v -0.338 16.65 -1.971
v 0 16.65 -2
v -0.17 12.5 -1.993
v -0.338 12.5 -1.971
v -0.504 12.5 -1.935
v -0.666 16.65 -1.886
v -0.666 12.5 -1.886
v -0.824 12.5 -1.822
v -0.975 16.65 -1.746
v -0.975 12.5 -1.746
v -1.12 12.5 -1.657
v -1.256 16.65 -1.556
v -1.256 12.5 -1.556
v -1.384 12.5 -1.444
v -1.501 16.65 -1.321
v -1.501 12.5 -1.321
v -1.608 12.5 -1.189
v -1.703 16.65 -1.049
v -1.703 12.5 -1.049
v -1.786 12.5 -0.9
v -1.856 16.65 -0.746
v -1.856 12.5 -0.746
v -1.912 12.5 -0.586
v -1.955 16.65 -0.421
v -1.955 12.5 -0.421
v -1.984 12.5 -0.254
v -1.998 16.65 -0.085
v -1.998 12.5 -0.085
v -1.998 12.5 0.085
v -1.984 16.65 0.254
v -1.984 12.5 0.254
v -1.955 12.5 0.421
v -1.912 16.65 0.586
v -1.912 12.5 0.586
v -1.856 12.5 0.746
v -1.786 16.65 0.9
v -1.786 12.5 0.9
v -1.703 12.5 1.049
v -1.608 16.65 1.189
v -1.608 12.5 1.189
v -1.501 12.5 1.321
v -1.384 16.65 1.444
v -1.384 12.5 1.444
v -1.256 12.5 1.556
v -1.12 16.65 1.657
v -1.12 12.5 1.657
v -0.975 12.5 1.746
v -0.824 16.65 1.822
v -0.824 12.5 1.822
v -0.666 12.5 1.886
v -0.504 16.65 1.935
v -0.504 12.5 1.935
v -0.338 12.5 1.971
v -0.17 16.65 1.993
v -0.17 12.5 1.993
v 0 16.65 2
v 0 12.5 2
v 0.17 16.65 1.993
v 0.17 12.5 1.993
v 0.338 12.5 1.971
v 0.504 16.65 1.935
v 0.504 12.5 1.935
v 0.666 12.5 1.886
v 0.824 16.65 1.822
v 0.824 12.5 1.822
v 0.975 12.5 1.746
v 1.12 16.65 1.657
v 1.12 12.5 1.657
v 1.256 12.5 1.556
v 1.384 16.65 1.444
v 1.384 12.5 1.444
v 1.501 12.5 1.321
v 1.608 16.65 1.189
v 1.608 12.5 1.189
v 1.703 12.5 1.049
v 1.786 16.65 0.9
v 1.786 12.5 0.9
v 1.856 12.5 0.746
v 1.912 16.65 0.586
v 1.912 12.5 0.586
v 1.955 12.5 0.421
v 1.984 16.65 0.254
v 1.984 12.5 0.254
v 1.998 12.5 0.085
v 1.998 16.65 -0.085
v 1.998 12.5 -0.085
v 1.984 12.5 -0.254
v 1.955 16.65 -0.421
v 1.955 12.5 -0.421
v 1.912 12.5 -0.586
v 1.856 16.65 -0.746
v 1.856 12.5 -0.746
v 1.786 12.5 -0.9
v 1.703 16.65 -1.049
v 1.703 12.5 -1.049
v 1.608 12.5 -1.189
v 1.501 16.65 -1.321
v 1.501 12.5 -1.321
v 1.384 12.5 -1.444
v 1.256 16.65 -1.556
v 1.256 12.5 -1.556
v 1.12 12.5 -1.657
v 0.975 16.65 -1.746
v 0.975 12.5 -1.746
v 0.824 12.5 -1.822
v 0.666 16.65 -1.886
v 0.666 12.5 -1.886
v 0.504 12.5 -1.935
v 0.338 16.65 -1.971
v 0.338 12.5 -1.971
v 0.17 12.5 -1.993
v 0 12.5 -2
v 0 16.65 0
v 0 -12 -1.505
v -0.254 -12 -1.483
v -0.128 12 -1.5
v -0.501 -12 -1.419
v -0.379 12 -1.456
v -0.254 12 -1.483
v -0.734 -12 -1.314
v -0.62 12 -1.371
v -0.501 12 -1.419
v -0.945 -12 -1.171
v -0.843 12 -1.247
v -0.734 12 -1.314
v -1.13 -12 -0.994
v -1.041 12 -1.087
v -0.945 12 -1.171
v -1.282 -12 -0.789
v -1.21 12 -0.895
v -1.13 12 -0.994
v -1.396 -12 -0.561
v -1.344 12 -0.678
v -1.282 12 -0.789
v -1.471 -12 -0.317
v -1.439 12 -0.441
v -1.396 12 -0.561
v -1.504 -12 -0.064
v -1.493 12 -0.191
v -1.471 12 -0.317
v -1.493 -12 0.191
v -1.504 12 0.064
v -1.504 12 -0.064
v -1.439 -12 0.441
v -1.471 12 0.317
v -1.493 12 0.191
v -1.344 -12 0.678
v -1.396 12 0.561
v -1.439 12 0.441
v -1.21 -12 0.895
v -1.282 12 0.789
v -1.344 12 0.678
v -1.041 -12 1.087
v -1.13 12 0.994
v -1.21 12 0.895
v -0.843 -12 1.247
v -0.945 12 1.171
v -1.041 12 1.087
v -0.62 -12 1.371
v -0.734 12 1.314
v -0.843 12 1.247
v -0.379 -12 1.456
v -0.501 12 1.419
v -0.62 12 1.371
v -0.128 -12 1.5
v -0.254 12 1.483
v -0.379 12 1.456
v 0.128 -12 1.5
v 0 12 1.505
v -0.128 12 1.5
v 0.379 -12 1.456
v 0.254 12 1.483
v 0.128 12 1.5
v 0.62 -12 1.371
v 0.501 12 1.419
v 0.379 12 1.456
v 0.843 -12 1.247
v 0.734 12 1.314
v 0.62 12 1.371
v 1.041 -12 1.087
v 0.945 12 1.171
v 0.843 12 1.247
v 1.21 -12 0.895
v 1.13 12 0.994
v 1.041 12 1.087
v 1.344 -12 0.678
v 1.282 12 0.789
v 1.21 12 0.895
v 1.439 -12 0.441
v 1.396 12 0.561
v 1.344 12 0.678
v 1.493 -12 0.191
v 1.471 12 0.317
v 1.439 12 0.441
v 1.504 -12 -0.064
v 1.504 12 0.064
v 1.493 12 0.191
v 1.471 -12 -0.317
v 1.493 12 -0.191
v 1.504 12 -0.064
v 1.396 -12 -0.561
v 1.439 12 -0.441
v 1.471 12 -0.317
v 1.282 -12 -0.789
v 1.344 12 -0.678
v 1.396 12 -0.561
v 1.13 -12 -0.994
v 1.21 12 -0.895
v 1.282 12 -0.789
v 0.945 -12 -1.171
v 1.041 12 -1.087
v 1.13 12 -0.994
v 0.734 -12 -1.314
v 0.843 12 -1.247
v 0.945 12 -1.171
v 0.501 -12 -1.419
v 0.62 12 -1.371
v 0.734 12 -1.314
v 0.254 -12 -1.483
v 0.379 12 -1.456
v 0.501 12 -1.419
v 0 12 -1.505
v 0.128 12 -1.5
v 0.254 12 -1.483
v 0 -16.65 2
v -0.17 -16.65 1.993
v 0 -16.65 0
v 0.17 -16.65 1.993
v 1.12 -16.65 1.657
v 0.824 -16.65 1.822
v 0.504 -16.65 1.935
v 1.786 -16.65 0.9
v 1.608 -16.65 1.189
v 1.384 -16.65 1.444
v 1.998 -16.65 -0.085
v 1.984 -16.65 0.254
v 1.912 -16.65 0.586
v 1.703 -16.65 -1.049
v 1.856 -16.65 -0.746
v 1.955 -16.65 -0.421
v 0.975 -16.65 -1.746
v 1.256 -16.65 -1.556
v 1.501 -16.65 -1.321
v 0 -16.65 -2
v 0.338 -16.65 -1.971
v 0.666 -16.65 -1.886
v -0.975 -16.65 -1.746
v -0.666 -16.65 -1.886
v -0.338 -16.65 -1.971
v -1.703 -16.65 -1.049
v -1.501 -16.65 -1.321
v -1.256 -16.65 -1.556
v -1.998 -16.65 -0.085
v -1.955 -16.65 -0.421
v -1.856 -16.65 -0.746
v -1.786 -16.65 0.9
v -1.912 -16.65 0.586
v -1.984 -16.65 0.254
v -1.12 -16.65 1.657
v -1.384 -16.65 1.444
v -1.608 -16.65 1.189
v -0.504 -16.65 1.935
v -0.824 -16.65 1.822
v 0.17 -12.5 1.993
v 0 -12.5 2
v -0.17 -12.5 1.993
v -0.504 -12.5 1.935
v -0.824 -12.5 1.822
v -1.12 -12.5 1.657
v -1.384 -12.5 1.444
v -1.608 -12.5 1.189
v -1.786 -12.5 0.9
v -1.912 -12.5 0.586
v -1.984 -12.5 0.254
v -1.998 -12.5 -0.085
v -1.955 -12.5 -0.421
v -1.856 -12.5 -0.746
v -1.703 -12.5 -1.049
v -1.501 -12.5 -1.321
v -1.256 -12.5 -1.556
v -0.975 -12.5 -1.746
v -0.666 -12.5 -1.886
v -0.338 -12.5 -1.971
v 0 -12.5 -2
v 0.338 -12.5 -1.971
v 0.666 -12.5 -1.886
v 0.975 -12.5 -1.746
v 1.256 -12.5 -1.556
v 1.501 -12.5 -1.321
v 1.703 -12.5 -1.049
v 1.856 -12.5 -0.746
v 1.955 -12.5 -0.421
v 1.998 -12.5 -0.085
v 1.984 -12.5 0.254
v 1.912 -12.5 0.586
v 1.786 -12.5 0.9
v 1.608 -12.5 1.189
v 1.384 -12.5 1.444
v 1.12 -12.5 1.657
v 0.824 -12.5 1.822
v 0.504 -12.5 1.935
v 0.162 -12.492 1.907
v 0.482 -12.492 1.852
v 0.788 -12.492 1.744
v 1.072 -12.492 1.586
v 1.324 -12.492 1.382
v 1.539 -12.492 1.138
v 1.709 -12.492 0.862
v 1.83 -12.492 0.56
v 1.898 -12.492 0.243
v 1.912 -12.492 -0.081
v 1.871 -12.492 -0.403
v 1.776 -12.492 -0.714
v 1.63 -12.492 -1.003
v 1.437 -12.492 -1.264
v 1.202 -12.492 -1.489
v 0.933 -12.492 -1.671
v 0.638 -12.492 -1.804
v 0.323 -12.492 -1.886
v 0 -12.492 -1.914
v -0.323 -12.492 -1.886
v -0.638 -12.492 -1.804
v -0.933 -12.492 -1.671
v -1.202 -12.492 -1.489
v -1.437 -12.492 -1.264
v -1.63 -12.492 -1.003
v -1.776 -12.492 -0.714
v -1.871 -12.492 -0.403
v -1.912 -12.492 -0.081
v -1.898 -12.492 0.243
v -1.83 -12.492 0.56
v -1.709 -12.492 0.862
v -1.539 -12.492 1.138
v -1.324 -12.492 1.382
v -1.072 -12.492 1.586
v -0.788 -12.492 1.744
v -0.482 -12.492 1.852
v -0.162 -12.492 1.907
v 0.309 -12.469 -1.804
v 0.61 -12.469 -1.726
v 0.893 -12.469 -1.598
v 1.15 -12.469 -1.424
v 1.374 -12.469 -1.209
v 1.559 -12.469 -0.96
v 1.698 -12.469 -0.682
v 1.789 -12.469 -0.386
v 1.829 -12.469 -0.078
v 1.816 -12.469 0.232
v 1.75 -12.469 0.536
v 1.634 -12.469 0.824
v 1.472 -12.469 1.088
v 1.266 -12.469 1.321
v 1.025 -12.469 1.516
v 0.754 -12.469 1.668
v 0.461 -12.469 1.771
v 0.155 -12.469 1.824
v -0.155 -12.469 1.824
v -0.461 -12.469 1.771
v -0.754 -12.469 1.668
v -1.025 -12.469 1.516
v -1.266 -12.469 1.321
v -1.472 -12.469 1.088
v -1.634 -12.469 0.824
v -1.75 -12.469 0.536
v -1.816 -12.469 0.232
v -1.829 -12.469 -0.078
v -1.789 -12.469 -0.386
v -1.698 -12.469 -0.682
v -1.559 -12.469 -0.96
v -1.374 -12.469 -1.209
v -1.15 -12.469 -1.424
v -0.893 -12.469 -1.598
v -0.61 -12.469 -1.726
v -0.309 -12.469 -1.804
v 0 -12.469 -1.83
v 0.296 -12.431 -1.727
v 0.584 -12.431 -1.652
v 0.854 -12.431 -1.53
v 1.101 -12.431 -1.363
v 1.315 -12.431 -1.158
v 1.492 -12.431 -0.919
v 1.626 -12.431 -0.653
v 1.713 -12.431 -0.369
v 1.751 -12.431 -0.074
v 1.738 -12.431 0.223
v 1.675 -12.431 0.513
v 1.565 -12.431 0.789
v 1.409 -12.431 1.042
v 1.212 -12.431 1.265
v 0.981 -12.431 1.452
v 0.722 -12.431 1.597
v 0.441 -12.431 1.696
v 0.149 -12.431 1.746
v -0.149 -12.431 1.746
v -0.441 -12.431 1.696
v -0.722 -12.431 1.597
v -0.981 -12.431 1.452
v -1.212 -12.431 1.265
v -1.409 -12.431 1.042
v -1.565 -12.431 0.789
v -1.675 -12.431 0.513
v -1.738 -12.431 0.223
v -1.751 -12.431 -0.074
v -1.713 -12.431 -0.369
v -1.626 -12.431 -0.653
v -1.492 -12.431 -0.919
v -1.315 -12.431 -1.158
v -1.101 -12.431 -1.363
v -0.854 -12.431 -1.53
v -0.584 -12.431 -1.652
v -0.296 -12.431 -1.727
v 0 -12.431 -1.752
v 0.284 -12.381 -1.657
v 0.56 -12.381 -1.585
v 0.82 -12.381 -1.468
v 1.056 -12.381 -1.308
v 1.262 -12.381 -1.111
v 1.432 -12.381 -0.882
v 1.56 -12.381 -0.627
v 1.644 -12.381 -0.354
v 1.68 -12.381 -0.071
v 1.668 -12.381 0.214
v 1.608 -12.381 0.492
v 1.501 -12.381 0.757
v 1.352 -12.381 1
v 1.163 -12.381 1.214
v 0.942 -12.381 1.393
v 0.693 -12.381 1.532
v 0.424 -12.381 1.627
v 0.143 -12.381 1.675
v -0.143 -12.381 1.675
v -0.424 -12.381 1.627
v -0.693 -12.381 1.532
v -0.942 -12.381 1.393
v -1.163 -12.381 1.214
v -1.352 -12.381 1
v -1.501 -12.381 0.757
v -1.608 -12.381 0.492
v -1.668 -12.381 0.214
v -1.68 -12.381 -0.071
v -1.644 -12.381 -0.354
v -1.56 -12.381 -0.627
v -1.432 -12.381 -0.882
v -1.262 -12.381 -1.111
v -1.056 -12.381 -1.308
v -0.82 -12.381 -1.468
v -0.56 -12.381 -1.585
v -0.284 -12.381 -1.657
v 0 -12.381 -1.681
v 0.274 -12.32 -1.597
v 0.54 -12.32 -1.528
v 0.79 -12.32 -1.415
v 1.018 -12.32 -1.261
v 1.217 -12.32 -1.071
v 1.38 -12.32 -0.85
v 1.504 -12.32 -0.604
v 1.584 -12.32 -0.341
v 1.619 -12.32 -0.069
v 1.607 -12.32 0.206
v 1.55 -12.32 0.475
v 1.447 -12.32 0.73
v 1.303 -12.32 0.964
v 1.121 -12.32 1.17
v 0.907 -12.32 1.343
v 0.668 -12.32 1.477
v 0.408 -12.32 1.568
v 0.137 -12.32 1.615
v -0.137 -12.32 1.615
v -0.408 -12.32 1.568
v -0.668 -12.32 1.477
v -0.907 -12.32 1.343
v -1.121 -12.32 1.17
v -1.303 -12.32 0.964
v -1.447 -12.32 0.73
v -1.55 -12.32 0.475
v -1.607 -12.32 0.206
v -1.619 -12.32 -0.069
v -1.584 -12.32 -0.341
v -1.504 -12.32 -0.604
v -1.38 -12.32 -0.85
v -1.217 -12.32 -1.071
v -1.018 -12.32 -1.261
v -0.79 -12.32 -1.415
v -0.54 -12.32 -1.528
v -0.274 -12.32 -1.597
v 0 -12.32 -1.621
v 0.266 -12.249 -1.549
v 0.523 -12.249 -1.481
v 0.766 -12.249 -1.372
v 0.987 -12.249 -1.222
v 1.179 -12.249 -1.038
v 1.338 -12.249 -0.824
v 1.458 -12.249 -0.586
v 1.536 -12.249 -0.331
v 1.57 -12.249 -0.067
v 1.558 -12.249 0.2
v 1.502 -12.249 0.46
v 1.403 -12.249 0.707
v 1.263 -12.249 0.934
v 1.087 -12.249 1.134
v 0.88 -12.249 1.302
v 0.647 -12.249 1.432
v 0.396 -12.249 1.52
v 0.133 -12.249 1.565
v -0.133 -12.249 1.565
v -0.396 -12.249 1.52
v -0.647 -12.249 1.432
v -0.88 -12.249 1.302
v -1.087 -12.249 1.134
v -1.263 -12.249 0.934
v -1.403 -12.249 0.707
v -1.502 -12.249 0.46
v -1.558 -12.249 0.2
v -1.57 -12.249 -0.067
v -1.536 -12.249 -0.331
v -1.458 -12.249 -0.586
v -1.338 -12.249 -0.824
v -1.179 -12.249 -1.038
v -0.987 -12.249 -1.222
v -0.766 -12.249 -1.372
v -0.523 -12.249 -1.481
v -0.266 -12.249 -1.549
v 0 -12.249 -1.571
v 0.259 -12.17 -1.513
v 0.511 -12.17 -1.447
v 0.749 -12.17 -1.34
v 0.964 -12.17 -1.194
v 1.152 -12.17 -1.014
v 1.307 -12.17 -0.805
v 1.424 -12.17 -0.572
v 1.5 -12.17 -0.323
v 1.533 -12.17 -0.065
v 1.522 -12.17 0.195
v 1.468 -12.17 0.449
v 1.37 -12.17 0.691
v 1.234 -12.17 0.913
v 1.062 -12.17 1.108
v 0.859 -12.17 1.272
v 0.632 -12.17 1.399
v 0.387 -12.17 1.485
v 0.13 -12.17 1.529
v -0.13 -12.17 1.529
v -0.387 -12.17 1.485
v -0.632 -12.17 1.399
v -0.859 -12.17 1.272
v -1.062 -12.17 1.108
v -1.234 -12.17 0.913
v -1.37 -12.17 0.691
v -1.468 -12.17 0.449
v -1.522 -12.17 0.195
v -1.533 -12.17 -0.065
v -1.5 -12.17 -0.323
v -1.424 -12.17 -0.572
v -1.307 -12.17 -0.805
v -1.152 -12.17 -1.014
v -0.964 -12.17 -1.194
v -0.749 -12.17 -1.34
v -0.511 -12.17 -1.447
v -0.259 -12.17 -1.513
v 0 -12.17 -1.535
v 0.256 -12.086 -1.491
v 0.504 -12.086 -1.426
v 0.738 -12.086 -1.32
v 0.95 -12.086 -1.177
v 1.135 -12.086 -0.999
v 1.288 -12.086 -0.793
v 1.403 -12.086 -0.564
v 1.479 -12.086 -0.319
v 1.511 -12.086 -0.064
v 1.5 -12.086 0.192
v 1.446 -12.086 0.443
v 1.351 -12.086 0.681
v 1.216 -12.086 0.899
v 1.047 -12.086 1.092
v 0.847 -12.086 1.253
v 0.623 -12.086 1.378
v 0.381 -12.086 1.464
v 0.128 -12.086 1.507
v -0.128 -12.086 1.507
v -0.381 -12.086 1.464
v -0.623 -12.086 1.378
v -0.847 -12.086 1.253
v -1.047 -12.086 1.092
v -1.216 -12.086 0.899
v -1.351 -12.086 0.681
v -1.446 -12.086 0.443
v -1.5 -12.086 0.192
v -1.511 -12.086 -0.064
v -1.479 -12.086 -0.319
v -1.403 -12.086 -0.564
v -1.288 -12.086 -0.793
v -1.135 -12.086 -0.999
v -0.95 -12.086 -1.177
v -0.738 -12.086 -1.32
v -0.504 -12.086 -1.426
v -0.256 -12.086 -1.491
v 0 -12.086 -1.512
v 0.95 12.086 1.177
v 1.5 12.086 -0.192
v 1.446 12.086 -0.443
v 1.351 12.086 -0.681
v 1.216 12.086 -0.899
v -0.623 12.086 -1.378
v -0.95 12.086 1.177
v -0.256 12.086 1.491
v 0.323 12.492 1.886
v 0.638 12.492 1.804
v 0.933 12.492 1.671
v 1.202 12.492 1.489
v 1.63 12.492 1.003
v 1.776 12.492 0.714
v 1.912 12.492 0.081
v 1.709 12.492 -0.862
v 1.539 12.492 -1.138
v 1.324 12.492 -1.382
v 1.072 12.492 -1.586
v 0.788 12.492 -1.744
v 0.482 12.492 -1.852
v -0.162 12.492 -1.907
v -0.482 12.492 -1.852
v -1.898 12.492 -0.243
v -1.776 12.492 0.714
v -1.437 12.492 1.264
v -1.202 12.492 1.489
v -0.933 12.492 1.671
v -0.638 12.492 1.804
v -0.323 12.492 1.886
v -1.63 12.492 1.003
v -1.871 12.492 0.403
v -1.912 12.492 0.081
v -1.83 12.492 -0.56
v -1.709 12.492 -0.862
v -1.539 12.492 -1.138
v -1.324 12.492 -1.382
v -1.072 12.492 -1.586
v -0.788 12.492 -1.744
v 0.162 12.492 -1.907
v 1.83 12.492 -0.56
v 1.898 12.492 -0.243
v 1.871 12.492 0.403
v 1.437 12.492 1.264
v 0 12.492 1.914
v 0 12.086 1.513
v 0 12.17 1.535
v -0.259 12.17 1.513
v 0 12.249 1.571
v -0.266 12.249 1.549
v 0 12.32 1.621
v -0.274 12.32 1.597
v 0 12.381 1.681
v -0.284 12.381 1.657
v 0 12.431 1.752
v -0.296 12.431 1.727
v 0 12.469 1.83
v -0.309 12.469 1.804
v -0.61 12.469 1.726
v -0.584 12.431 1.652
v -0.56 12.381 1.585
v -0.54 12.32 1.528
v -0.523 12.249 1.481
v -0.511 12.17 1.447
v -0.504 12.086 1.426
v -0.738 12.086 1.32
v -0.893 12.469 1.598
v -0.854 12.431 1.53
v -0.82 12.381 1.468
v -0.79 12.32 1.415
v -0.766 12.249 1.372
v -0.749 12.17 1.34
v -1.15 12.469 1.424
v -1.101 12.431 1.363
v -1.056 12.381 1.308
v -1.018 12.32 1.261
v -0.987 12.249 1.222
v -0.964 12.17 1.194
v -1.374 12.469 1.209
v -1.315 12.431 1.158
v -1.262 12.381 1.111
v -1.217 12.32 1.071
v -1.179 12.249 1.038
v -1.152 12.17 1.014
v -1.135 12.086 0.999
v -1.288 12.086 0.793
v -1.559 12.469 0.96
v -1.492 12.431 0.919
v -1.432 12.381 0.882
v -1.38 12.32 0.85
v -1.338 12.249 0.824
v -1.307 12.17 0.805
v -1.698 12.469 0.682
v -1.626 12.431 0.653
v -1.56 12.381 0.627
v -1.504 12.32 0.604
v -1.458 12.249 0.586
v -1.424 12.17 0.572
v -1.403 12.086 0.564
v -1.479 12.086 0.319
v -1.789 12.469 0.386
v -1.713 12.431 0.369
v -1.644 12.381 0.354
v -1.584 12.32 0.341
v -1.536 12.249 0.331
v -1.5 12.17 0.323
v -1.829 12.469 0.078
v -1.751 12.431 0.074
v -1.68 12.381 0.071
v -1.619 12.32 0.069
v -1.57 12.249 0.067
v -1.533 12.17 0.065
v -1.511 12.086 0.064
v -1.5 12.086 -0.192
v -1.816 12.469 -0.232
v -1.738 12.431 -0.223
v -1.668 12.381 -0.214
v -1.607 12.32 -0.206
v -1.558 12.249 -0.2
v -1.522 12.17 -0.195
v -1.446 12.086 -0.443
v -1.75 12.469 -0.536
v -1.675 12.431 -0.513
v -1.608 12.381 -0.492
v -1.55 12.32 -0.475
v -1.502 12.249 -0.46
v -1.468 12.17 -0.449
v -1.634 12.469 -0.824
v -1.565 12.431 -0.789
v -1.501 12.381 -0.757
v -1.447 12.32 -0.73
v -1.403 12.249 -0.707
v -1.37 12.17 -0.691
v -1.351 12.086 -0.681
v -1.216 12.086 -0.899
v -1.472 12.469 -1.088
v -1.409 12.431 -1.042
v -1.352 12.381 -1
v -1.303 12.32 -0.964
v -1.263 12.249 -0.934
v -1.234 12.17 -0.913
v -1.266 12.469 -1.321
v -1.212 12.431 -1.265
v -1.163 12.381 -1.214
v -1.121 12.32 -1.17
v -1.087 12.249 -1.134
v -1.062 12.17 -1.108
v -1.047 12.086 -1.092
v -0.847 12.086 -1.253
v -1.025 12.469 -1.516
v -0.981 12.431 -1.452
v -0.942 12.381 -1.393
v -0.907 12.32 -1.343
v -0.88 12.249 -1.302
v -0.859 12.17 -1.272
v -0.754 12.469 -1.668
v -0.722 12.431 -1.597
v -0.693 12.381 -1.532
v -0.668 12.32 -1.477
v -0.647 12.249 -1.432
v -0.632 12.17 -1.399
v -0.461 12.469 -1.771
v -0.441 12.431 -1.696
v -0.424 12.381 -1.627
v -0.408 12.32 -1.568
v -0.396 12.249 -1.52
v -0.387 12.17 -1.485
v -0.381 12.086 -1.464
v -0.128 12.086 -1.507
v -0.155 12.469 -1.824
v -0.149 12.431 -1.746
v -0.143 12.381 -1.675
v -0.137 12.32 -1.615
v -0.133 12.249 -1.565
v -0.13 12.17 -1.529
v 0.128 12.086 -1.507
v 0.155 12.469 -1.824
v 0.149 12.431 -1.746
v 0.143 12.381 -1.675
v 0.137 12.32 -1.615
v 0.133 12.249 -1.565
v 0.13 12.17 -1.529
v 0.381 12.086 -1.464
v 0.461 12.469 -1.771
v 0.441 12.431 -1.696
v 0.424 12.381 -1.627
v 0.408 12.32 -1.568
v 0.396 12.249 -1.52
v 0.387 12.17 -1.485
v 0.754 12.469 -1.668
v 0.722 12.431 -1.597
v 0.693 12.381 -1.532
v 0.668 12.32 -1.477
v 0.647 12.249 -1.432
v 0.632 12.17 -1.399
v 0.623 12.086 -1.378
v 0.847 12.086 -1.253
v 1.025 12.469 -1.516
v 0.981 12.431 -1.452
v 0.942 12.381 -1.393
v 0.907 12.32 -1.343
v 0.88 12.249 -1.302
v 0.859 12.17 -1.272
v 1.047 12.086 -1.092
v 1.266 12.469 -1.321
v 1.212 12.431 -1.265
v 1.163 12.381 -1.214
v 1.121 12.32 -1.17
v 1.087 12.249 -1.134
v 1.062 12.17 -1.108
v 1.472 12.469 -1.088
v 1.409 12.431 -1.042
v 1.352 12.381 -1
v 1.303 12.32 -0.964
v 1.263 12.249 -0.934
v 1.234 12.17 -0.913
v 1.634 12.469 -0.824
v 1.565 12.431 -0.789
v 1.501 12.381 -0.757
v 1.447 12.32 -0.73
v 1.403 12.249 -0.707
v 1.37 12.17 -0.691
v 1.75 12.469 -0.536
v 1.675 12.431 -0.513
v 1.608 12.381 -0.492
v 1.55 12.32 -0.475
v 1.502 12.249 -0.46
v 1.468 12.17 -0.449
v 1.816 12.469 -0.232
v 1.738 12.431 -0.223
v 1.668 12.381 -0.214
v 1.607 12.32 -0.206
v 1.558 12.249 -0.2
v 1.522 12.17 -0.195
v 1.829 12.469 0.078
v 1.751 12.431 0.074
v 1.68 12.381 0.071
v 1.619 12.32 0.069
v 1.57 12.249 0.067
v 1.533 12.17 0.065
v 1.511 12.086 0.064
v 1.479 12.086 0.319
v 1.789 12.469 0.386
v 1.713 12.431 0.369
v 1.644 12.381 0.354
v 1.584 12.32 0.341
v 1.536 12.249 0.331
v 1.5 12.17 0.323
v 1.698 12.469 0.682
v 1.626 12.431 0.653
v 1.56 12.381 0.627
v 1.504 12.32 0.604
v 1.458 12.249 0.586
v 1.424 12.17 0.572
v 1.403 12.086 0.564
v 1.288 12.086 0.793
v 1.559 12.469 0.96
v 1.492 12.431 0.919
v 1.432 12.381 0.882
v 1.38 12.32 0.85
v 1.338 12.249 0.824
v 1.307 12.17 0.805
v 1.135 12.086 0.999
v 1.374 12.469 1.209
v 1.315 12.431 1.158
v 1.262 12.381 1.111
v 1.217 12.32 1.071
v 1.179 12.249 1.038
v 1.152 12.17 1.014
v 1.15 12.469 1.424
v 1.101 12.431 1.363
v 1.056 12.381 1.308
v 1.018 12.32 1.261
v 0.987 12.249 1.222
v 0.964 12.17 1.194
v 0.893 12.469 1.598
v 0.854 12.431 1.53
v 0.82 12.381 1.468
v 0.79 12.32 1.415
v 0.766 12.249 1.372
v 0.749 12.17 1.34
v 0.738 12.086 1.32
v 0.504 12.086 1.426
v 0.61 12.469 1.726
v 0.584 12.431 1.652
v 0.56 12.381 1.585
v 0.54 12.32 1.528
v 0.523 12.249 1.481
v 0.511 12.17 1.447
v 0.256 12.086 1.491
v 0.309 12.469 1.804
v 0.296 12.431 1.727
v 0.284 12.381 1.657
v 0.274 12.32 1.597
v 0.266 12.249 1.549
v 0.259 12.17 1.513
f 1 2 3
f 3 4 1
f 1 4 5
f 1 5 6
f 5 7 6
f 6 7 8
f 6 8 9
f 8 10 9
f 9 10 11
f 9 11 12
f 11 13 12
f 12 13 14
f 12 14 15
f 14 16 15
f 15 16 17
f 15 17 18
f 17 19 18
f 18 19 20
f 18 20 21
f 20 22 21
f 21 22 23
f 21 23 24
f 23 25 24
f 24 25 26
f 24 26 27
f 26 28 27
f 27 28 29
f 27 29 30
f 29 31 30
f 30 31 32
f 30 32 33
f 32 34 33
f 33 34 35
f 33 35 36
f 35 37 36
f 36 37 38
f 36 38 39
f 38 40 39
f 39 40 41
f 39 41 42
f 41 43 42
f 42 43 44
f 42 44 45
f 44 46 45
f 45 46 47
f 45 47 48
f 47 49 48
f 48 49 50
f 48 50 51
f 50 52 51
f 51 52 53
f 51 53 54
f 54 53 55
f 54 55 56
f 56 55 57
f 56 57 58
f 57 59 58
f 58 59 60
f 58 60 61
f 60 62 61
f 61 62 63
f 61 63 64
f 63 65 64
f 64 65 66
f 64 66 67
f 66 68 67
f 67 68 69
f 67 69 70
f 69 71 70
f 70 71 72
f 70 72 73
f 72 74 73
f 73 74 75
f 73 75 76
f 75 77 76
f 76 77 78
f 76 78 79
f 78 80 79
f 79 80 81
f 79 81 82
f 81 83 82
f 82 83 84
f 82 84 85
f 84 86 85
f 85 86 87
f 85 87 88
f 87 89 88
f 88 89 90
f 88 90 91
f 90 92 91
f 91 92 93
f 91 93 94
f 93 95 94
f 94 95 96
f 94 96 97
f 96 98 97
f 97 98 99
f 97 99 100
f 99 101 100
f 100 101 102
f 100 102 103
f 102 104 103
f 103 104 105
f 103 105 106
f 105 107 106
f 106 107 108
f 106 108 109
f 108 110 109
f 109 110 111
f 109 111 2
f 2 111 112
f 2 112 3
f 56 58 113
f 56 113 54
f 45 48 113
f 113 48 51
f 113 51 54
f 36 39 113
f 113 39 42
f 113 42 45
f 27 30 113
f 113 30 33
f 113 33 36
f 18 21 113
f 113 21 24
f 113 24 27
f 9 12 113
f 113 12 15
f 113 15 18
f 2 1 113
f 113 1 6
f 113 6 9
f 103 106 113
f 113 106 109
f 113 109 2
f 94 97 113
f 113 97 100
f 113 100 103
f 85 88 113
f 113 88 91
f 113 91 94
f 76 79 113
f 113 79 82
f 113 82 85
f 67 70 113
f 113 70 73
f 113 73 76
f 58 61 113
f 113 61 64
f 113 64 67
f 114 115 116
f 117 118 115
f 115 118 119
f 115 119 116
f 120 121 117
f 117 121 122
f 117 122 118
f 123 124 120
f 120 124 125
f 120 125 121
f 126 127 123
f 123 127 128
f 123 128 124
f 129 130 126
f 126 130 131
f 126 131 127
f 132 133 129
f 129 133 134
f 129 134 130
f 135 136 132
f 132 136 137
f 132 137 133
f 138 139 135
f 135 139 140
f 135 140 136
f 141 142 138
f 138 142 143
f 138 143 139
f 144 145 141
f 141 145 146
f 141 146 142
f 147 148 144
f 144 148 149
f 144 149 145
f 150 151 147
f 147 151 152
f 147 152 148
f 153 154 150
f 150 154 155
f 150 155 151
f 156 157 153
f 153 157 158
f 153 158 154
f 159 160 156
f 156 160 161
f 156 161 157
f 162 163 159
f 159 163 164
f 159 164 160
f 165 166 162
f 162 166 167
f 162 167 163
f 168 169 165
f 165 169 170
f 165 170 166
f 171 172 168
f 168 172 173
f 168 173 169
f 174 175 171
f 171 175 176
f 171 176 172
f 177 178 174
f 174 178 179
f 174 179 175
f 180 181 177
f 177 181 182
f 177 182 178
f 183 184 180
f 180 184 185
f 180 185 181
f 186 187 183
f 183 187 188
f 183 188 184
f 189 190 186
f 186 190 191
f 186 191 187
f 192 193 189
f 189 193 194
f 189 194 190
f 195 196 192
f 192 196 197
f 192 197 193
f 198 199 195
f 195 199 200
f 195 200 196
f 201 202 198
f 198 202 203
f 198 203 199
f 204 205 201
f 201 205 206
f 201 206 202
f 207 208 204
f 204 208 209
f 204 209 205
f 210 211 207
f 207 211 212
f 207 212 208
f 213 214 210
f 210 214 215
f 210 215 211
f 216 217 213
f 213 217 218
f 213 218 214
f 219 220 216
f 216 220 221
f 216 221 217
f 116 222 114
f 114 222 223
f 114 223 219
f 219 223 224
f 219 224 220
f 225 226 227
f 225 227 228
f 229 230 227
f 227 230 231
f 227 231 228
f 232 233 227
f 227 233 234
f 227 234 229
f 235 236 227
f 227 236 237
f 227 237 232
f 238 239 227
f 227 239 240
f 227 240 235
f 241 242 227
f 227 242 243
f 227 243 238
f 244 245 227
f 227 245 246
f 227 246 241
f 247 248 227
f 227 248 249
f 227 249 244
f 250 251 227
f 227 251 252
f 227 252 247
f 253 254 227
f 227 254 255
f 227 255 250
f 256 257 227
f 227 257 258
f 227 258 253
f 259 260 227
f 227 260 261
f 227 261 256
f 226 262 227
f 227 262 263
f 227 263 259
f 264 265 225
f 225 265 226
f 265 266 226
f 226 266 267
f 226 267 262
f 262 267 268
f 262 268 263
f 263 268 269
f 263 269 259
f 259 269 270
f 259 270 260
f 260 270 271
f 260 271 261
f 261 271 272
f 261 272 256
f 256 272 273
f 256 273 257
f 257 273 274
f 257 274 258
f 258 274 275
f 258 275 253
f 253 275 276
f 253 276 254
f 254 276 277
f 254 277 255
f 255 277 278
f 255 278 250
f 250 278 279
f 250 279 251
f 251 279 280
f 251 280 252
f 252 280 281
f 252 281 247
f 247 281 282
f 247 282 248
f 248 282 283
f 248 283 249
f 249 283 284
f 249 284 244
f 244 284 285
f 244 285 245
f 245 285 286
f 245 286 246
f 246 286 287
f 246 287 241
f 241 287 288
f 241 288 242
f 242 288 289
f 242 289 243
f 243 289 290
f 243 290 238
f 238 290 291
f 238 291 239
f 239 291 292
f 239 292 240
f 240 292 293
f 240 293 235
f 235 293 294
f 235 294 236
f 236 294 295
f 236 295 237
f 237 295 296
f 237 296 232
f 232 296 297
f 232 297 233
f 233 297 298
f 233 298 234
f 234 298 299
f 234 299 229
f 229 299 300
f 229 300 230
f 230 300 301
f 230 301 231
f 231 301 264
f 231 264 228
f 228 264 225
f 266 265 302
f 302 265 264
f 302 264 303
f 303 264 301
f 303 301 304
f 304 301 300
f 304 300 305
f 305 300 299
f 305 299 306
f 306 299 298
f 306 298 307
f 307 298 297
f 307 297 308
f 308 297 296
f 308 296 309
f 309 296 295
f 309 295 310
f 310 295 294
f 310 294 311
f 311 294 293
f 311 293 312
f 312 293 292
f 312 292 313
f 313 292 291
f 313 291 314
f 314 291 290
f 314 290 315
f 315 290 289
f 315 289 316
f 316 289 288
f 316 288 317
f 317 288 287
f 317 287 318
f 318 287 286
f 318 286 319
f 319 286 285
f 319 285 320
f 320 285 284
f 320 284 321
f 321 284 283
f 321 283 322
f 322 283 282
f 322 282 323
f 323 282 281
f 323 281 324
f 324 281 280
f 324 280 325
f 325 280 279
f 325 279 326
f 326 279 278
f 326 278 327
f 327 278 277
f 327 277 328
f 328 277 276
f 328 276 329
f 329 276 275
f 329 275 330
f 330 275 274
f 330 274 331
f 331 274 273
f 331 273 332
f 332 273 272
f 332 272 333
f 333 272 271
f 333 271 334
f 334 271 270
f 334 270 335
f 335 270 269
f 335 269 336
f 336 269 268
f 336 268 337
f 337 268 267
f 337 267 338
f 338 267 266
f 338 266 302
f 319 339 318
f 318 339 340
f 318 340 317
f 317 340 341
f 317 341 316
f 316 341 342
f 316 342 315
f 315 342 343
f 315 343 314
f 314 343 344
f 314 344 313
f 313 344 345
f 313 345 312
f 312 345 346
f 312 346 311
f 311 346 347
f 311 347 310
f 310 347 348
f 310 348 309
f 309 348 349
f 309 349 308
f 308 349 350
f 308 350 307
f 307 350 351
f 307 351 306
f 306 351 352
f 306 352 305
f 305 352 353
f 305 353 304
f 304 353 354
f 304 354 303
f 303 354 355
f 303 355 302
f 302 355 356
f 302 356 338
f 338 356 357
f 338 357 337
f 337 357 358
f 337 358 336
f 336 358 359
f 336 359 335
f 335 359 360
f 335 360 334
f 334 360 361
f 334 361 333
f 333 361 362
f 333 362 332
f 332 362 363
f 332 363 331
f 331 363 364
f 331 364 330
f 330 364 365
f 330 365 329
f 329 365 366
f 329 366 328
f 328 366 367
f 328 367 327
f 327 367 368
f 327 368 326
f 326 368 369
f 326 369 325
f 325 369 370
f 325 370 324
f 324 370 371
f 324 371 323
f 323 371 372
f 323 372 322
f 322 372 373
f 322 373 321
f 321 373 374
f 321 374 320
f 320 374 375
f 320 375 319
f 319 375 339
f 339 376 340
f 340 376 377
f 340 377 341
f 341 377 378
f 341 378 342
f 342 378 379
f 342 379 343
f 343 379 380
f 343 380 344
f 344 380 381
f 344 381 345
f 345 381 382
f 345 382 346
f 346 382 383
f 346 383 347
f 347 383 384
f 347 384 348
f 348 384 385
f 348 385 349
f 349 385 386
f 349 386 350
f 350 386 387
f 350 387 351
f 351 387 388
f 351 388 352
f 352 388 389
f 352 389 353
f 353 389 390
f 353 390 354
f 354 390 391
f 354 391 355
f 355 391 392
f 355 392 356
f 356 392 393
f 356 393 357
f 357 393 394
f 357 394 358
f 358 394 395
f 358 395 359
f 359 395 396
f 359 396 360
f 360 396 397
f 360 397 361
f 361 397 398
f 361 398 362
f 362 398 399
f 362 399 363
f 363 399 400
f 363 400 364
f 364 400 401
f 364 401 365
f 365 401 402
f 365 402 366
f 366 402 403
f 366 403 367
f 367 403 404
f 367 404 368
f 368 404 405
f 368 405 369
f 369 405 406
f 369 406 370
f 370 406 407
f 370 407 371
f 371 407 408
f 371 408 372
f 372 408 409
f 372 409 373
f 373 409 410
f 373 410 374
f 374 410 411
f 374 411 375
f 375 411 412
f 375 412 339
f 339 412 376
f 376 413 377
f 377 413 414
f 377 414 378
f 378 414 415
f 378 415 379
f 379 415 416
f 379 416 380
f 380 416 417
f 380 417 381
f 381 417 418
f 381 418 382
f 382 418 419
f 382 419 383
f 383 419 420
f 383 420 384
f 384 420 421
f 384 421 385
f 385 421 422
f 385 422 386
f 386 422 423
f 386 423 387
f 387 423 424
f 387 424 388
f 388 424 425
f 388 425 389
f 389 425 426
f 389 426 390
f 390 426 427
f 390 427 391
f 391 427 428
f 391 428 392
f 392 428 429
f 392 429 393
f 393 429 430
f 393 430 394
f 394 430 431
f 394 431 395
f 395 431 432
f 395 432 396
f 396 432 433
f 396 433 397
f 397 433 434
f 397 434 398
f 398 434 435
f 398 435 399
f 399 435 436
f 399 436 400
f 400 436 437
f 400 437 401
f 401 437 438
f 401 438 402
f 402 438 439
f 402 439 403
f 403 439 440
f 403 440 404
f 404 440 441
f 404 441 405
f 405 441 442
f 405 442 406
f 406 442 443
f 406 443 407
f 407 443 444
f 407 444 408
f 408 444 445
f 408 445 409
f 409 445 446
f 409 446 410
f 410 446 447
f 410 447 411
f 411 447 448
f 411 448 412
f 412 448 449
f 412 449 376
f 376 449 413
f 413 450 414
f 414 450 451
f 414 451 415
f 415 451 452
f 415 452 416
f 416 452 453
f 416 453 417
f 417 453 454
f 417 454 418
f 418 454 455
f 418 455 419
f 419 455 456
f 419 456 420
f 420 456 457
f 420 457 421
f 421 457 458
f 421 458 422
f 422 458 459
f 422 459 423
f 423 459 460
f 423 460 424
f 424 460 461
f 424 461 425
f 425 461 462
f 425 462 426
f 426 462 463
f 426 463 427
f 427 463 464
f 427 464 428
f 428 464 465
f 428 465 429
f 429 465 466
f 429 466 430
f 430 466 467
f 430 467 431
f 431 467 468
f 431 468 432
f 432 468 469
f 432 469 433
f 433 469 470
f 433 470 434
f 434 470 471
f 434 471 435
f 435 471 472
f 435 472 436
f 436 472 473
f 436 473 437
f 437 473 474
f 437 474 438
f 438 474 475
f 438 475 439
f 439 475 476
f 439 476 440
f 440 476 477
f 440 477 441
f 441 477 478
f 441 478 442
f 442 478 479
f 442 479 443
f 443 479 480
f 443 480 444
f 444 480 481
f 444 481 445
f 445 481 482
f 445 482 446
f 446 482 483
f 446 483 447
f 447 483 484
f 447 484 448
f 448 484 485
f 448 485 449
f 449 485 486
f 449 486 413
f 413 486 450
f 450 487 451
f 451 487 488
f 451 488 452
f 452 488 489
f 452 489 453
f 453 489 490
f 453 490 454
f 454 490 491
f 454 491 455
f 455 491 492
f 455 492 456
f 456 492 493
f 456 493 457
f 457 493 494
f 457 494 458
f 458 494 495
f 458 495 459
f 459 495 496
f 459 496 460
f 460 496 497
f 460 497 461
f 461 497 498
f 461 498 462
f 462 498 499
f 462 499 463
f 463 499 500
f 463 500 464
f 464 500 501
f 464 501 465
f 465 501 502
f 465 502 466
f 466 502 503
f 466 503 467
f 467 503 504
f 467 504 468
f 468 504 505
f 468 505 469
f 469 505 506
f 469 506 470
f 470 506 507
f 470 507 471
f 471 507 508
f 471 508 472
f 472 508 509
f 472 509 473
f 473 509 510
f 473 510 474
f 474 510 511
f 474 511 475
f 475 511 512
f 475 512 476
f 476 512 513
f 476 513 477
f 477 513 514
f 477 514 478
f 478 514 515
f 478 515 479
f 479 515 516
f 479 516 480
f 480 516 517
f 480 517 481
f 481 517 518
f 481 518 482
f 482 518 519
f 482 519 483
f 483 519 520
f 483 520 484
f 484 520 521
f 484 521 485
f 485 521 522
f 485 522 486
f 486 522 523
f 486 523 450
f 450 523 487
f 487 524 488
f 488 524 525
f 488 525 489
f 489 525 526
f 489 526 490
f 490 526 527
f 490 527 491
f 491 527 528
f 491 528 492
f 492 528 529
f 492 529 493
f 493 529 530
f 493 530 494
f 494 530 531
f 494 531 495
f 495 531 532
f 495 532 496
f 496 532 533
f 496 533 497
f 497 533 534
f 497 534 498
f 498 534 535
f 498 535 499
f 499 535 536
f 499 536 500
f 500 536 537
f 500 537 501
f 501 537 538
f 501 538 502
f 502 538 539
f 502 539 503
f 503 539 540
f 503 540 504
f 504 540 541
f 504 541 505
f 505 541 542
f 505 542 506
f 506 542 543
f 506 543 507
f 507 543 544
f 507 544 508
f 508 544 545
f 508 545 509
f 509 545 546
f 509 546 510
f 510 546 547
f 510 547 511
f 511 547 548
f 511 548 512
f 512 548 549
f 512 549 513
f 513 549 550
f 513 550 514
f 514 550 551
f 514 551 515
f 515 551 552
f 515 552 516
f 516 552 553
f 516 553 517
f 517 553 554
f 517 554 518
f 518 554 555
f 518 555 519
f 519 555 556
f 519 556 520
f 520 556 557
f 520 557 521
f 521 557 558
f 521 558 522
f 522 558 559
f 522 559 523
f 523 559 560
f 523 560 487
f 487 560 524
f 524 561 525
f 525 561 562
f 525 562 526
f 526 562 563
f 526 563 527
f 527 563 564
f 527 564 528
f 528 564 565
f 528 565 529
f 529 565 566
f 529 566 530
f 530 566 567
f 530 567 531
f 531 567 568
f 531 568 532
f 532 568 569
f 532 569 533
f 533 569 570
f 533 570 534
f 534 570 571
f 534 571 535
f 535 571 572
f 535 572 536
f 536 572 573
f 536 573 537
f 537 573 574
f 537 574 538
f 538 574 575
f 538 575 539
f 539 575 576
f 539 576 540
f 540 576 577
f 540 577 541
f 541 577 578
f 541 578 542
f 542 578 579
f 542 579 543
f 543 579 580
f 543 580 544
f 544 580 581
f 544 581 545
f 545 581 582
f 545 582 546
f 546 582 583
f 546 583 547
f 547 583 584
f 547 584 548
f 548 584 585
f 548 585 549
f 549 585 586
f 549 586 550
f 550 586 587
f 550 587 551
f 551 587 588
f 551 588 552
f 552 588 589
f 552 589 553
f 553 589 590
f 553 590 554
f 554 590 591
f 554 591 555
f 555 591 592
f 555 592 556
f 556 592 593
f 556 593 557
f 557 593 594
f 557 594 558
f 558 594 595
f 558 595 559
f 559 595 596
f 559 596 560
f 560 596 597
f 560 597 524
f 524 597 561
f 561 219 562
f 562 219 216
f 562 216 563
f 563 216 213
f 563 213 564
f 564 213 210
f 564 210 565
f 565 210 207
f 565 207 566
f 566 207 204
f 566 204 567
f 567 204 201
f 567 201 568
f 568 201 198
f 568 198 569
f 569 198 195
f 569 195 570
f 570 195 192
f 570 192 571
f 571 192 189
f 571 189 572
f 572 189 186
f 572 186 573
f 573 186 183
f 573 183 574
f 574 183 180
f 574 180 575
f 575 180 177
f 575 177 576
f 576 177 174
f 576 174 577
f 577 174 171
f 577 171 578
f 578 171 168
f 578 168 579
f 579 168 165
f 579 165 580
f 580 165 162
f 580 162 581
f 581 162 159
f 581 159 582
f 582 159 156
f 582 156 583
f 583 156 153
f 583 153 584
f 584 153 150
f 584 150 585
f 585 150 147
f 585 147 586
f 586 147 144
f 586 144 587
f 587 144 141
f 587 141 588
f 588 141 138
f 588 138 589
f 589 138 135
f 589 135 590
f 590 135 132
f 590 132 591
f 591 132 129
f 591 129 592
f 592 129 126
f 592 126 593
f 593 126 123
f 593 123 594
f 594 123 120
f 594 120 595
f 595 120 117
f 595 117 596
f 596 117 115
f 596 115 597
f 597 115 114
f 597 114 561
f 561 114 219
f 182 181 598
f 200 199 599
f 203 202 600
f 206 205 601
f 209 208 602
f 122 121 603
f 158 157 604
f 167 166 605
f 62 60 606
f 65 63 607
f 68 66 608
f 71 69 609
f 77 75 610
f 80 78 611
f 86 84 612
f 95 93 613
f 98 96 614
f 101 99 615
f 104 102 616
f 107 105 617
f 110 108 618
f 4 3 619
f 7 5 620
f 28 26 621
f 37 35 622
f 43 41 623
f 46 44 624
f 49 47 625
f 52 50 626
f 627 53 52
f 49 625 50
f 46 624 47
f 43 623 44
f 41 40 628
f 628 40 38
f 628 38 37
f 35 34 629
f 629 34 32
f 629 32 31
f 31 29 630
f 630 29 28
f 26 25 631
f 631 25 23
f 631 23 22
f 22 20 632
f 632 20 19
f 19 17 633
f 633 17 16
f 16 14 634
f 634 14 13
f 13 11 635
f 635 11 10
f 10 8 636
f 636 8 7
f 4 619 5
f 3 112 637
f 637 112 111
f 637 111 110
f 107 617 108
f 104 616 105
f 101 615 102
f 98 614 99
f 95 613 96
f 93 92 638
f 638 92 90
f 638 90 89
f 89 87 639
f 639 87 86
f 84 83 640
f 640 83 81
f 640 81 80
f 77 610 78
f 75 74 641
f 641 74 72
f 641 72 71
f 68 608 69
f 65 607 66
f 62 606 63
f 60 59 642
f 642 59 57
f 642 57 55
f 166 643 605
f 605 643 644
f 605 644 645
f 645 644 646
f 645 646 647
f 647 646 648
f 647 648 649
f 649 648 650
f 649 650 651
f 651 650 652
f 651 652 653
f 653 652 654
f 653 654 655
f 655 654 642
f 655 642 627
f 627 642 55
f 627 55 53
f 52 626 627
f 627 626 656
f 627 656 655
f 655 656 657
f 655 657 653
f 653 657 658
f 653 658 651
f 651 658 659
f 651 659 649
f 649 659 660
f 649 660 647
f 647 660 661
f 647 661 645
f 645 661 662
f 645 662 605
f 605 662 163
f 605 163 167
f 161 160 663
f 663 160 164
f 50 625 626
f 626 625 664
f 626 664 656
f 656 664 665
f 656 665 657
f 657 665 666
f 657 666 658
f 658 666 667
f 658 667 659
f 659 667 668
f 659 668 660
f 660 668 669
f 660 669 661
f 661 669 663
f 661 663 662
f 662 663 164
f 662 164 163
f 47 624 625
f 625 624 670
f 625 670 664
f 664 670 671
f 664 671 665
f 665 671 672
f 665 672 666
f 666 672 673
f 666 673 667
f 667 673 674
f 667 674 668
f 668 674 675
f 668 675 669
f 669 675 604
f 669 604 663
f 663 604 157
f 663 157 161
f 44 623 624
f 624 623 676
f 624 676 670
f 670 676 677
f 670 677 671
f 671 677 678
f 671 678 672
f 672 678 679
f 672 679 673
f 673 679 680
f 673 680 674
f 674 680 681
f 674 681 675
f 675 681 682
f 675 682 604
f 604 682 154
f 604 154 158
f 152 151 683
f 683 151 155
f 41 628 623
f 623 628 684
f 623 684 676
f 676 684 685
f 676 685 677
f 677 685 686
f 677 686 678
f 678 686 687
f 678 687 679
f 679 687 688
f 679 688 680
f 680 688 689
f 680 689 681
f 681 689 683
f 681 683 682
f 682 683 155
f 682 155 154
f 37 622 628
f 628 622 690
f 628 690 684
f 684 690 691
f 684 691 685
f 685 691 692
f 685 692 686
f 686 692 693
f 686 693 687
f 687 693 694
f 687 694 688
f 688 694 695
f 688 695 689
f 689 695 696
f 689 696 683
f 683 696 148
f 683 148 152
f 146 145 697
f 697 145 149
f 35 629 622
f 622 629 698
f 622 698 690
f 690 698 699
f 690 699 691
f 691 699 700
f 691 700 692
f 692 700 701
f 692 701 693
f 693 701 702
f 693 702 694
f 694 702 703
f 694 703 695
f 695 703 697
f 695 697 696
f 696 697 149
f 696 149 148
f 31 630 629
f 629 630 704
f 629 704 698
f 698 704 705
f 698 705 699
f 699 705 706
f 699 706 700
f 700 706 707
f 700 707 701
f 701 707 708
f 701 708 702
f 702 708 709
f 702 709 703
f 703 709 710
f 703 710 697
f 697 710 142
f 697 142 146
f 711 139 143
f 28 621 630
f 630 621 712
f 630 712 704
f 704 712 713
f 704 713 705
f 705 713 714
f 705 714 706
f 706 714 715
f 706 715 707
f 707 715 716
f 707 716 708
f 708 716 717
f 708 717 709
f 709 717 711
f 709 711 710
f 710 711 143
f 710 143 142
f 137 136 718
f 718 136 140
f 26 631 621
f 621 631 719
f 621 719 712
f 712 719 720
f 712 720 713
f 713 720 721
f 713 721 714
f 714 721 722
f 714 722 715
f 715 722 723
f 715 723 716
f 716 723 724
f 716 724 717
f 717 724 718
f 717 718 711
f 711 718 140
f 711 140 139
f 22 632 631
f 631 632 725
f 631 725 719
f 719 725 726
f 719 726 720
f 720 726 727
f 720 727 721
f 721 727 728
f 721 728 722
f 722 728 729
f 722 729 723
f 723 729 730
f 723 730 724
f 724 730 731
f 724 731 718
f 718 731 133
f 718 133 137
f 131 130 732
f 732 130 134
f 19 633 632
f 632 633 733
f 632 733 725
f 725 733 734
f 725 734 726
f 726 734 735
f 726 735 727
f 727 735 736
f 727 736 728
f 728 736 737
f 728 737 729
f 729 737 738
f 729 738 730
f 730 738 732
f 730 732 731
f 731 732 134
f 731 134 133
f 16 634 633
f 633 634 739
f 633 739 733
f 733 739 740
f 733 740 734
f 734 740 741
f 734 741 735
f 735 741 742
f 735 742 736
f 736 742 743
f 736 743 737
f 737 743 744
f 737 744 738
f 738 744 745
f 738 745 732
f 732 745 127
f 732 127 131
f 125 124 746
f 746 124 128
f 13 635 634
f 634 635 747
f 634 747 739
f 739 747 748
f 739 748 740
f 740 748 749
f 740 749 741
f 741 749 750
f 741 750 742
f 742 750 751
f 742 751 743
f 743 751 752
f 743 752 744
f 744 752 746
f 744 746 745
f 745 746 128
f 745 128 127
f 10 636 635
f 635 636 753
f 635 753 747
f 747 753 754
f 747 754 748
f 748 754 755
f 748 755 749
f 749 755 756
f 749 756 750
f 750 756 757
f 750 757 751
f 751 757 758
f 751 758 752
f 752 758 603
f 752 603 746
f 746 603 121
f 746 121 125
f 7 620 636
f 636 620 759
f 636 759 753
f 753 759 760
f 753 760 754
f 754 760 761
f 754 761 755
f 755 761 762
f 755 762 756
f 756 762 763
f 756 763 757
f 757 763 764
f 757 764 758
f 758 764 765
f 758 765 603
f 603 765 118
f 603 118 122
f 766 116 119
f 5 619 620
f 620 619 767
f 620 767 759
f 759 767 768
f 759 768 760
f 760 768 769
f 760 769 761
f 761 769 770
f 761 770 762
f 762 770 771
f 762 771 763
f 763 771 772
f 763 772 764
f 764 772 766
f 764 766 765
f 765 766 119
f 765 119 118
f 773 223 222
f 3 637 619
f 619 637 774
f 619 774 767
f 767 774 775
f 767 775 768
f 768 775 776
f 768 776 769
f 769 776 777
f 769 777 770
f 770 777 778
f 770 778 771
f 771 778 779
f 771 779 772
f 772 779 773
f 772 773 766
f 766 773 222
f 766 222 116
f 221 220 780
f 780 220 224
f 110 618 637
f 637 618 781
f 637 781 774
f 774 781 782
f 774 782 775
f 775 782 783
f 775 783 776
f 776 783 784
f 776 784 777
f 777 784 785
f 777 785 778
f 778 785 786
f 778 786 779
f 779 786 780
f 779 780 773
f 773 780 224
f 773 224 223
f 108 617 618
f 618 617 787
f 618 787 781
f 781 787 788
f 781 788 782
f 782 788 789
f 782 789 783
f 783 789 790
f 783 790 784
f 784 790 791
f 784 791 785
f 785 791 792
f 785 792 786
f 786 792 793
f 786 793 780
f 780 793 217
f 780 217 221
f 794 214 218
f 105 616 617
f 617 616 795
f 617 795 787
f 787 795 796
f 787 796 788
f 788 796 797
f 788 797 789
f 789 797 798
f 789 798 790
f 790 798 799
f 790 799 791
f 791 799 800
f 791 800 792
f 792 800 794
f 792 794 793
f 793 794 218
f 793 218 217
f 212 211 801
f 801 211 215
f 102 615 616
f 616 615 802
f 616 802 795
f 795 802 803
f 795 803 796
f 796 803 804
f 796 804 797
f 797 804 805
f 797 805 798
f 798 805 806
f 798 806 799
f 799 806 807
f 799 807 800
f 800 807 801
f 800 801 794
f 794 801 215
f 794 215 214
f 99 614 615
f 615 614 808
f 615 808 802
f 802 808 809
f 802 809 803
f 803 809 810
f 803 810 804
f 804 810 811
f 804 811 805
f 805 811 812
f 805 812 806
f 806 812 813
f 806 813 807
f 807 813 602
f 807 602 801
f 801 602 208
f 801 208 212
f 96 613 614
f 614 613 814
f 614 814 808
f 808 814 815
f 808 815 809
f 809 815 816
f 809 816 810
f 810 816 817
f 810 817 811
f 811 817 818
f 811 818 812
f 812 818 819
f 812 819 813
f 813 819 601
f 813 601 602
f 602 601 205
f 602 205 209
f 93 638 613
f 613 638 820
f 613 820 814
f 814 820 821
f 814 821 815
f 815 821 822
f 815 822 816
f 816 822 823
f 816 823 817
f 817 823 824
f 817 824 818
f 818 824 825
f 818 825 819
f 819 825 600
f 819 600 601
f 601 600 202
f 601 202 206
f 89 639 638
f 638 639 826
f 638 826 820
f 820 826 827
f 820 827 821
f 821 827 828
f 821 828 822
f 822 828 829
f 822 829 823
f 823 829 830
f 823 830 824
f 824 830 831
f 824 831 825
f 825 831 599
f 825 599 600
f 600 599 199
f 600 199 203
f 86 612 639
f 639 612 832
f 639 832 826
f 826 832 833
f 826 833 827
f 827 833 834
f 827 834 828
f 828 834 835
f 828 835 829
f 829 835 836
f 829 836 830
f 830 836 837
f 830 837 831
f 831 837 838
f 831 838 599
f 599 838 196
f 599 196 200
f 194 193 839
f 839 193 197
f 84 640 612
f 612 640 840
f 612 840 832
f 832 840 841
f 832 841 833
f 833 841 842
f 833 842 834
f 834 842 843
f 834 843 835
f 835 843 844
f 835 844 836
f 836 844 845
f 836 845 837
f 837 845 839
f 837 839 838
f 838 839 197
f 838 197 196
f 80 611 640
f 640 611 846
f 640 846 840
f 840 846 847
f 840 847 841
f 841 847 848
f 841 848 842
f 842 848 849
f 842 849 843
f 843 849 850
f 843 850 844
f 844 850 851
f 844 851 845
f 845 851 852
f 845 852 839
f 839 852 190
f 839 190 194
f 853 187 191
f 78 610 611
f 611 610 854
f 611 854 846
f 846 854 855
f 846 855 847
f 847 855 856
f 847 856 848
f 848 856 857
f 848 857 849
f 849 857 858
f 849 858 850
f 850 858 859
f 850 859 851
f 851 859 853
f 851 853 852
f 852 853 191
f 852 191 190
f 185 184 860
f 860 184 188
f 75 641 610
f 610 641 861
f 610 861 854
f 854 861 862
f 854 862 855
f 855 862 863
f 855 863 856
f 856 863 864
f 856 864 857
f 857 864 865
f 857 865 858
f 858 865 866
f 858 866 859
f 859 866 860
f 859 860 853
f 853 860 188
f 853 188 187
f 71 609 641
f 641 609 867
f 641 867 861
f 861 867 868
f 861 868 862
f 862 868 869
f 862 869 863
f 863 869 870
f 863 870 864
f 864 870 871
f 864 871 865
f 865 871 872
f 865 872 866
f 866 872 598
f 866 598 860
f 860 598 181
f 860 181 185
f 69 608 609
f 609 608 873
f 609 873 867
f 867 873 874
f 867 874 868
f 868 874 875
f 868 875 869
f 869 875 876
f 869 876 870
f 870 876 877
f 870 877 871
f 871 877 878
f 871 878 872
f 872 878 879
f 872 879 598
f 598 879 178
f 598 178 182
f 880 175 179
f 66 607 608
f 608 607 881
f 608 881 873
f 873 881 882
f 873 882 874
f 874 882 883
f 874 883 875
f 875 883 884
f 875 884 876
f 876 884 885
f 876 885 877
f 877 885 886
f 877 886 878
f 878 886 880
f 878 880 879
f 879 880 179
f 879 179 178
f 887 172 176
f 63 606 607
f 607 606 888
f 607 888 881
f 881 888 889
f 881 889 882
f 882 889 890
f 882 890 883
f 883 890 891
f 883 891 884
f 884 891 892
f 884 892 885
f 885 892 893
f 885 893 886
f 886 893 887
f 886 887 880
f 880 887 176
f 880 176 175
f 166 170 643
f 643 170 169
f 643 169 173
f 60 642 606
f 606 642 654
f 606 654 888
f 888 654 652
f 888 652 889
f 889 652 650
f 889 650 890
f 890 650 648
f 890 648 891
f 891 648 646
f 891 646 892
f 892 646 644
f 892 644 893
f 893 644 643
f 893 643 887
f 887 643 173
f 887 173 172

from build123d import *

# Parameters (mm, degrees)
CROQUIS1_R                 = 2
SALIENTE_EXTRUIR1_DEPTH    = 16.65
CORTAR_EXTRUIR1_DEPTH      = 12.5
CORTAR_EXTRUIR1_DEPTH_BACK = 12.5
CROQUIS2_R                 = 2
CROQUIS2_R_2               = 1.505
REDONDEO1_R                = 0.5
REDONDEO2_R                = 0.5


with BuildPart() as part:
    # Croquis1 → Saliente-Extruir1 (new, symmetric)
    with BuildSketch(Plane(origin=(0, 0, 0), x_dir=(1, 0, 0), z_dir=(0, 1, 0))):
        with Locations(Location((0, 0, 0), (0, 0, 270))):
            Circle(CROQUIS1_R)
    extrude(amount=SALIENTE_EXTRUIR1_DEPTH, both=True)

    # Croquis2 → Cortar-Extruir1 (cut, two sides: drawn at the far end of the back side and taken through both)
    with BuildSketch(Plane(origin=(0, 0, 0), x_dir=(1, 0, 0), z_dir=(0, 1, 0)).offset(-CORTAR_EXTRUIR1_DEPTH_BACK)):
        with Locations(Location((0, 0, 0), (0, 0, 270))):
            Circle(CROQUIS2_R)
        with Locations(Location((0, 0, 0), (0, 0, 270))):
            Circle(CROQUIS2_R_2, mode=Mode.SUBTRACT)
    extrude(amount=CORTAR_EXTRUIR1_DEPTH + CORTAR_EXTRUIR1_DEPTH_BACK, mode=Mode.SUBTRACT)

    # Redondeo1
    # the kernel refuses this fillet: 0.5 mm, written as the material it adds along each edge
    with BuildSketch(Plane(origin=(0, -12.5, 0), x_dir=(0, 0, 1), z_dir=(-1, 0, 0))) as redondeo1_piece_1_section:
        with BuildLine():
            CenterArc((1.505 + REDONDEO1_R, REDONDEO1_R), REDONDEO1_R, 180, 90)
            Line((1.505, REDONDEO1_R), (1.505, 0))
            Line((1.505, 0), (1.505 + REDONDEO1_R, 0))
        make_face()
    redondeo1_piece_1 = revolve(axis=Axis((0, -12.5, 0), (0, 1, 0)), mode=Mode.PRIVATE)
    redondeo1_piece_1 = redondeo1_piece_1 & Plane(origin=(0, -12.357868044, 0), x_dir=(0, 0, 1), z_dir=(0, 1, 0)) * Cylinder(2, 9, mode=Mode.PRIVATE)
    add(redondeo1_piece_1)

    # Redondeo2
    # the kernel refuses this fillet: 0.5 mm, written as the material it adds along each edge
    with BuildSketch(Plane(origin=(0, 12.5, 0), x_dir=(0, 0, 1), z_dir=(-1, 0, 0))) as redondeo2_piece_1_section:
        with BuildLine():
            CenterArc((1.505 + REDONDEO2_R, -REDONDEO2_R), REDONDEO2_R, 90, 90)
            Line((1.505 + REDONDEO2_R, 0), (1.505, 0))
            Line((1.505, 0), (1.505, -REDONDEO2_R))
        make_face()
    redondeo2_piece_1 = revolve(axis=Axis((0, 12.5, 0), (0, 1, 0)), mode=Mode.PRIVATE)
    redondeo2_piece_1 = redondeo2_piece_1 & Plane(origin=(0, 12.357868044, 0), x_dir=(0, 0, 1), z_dir=(0, 1, 0)) * Cylinder(2, 9, mode=Mode.PRIVATE)
    add(redondeo2_piece_1)


solid = part.part
